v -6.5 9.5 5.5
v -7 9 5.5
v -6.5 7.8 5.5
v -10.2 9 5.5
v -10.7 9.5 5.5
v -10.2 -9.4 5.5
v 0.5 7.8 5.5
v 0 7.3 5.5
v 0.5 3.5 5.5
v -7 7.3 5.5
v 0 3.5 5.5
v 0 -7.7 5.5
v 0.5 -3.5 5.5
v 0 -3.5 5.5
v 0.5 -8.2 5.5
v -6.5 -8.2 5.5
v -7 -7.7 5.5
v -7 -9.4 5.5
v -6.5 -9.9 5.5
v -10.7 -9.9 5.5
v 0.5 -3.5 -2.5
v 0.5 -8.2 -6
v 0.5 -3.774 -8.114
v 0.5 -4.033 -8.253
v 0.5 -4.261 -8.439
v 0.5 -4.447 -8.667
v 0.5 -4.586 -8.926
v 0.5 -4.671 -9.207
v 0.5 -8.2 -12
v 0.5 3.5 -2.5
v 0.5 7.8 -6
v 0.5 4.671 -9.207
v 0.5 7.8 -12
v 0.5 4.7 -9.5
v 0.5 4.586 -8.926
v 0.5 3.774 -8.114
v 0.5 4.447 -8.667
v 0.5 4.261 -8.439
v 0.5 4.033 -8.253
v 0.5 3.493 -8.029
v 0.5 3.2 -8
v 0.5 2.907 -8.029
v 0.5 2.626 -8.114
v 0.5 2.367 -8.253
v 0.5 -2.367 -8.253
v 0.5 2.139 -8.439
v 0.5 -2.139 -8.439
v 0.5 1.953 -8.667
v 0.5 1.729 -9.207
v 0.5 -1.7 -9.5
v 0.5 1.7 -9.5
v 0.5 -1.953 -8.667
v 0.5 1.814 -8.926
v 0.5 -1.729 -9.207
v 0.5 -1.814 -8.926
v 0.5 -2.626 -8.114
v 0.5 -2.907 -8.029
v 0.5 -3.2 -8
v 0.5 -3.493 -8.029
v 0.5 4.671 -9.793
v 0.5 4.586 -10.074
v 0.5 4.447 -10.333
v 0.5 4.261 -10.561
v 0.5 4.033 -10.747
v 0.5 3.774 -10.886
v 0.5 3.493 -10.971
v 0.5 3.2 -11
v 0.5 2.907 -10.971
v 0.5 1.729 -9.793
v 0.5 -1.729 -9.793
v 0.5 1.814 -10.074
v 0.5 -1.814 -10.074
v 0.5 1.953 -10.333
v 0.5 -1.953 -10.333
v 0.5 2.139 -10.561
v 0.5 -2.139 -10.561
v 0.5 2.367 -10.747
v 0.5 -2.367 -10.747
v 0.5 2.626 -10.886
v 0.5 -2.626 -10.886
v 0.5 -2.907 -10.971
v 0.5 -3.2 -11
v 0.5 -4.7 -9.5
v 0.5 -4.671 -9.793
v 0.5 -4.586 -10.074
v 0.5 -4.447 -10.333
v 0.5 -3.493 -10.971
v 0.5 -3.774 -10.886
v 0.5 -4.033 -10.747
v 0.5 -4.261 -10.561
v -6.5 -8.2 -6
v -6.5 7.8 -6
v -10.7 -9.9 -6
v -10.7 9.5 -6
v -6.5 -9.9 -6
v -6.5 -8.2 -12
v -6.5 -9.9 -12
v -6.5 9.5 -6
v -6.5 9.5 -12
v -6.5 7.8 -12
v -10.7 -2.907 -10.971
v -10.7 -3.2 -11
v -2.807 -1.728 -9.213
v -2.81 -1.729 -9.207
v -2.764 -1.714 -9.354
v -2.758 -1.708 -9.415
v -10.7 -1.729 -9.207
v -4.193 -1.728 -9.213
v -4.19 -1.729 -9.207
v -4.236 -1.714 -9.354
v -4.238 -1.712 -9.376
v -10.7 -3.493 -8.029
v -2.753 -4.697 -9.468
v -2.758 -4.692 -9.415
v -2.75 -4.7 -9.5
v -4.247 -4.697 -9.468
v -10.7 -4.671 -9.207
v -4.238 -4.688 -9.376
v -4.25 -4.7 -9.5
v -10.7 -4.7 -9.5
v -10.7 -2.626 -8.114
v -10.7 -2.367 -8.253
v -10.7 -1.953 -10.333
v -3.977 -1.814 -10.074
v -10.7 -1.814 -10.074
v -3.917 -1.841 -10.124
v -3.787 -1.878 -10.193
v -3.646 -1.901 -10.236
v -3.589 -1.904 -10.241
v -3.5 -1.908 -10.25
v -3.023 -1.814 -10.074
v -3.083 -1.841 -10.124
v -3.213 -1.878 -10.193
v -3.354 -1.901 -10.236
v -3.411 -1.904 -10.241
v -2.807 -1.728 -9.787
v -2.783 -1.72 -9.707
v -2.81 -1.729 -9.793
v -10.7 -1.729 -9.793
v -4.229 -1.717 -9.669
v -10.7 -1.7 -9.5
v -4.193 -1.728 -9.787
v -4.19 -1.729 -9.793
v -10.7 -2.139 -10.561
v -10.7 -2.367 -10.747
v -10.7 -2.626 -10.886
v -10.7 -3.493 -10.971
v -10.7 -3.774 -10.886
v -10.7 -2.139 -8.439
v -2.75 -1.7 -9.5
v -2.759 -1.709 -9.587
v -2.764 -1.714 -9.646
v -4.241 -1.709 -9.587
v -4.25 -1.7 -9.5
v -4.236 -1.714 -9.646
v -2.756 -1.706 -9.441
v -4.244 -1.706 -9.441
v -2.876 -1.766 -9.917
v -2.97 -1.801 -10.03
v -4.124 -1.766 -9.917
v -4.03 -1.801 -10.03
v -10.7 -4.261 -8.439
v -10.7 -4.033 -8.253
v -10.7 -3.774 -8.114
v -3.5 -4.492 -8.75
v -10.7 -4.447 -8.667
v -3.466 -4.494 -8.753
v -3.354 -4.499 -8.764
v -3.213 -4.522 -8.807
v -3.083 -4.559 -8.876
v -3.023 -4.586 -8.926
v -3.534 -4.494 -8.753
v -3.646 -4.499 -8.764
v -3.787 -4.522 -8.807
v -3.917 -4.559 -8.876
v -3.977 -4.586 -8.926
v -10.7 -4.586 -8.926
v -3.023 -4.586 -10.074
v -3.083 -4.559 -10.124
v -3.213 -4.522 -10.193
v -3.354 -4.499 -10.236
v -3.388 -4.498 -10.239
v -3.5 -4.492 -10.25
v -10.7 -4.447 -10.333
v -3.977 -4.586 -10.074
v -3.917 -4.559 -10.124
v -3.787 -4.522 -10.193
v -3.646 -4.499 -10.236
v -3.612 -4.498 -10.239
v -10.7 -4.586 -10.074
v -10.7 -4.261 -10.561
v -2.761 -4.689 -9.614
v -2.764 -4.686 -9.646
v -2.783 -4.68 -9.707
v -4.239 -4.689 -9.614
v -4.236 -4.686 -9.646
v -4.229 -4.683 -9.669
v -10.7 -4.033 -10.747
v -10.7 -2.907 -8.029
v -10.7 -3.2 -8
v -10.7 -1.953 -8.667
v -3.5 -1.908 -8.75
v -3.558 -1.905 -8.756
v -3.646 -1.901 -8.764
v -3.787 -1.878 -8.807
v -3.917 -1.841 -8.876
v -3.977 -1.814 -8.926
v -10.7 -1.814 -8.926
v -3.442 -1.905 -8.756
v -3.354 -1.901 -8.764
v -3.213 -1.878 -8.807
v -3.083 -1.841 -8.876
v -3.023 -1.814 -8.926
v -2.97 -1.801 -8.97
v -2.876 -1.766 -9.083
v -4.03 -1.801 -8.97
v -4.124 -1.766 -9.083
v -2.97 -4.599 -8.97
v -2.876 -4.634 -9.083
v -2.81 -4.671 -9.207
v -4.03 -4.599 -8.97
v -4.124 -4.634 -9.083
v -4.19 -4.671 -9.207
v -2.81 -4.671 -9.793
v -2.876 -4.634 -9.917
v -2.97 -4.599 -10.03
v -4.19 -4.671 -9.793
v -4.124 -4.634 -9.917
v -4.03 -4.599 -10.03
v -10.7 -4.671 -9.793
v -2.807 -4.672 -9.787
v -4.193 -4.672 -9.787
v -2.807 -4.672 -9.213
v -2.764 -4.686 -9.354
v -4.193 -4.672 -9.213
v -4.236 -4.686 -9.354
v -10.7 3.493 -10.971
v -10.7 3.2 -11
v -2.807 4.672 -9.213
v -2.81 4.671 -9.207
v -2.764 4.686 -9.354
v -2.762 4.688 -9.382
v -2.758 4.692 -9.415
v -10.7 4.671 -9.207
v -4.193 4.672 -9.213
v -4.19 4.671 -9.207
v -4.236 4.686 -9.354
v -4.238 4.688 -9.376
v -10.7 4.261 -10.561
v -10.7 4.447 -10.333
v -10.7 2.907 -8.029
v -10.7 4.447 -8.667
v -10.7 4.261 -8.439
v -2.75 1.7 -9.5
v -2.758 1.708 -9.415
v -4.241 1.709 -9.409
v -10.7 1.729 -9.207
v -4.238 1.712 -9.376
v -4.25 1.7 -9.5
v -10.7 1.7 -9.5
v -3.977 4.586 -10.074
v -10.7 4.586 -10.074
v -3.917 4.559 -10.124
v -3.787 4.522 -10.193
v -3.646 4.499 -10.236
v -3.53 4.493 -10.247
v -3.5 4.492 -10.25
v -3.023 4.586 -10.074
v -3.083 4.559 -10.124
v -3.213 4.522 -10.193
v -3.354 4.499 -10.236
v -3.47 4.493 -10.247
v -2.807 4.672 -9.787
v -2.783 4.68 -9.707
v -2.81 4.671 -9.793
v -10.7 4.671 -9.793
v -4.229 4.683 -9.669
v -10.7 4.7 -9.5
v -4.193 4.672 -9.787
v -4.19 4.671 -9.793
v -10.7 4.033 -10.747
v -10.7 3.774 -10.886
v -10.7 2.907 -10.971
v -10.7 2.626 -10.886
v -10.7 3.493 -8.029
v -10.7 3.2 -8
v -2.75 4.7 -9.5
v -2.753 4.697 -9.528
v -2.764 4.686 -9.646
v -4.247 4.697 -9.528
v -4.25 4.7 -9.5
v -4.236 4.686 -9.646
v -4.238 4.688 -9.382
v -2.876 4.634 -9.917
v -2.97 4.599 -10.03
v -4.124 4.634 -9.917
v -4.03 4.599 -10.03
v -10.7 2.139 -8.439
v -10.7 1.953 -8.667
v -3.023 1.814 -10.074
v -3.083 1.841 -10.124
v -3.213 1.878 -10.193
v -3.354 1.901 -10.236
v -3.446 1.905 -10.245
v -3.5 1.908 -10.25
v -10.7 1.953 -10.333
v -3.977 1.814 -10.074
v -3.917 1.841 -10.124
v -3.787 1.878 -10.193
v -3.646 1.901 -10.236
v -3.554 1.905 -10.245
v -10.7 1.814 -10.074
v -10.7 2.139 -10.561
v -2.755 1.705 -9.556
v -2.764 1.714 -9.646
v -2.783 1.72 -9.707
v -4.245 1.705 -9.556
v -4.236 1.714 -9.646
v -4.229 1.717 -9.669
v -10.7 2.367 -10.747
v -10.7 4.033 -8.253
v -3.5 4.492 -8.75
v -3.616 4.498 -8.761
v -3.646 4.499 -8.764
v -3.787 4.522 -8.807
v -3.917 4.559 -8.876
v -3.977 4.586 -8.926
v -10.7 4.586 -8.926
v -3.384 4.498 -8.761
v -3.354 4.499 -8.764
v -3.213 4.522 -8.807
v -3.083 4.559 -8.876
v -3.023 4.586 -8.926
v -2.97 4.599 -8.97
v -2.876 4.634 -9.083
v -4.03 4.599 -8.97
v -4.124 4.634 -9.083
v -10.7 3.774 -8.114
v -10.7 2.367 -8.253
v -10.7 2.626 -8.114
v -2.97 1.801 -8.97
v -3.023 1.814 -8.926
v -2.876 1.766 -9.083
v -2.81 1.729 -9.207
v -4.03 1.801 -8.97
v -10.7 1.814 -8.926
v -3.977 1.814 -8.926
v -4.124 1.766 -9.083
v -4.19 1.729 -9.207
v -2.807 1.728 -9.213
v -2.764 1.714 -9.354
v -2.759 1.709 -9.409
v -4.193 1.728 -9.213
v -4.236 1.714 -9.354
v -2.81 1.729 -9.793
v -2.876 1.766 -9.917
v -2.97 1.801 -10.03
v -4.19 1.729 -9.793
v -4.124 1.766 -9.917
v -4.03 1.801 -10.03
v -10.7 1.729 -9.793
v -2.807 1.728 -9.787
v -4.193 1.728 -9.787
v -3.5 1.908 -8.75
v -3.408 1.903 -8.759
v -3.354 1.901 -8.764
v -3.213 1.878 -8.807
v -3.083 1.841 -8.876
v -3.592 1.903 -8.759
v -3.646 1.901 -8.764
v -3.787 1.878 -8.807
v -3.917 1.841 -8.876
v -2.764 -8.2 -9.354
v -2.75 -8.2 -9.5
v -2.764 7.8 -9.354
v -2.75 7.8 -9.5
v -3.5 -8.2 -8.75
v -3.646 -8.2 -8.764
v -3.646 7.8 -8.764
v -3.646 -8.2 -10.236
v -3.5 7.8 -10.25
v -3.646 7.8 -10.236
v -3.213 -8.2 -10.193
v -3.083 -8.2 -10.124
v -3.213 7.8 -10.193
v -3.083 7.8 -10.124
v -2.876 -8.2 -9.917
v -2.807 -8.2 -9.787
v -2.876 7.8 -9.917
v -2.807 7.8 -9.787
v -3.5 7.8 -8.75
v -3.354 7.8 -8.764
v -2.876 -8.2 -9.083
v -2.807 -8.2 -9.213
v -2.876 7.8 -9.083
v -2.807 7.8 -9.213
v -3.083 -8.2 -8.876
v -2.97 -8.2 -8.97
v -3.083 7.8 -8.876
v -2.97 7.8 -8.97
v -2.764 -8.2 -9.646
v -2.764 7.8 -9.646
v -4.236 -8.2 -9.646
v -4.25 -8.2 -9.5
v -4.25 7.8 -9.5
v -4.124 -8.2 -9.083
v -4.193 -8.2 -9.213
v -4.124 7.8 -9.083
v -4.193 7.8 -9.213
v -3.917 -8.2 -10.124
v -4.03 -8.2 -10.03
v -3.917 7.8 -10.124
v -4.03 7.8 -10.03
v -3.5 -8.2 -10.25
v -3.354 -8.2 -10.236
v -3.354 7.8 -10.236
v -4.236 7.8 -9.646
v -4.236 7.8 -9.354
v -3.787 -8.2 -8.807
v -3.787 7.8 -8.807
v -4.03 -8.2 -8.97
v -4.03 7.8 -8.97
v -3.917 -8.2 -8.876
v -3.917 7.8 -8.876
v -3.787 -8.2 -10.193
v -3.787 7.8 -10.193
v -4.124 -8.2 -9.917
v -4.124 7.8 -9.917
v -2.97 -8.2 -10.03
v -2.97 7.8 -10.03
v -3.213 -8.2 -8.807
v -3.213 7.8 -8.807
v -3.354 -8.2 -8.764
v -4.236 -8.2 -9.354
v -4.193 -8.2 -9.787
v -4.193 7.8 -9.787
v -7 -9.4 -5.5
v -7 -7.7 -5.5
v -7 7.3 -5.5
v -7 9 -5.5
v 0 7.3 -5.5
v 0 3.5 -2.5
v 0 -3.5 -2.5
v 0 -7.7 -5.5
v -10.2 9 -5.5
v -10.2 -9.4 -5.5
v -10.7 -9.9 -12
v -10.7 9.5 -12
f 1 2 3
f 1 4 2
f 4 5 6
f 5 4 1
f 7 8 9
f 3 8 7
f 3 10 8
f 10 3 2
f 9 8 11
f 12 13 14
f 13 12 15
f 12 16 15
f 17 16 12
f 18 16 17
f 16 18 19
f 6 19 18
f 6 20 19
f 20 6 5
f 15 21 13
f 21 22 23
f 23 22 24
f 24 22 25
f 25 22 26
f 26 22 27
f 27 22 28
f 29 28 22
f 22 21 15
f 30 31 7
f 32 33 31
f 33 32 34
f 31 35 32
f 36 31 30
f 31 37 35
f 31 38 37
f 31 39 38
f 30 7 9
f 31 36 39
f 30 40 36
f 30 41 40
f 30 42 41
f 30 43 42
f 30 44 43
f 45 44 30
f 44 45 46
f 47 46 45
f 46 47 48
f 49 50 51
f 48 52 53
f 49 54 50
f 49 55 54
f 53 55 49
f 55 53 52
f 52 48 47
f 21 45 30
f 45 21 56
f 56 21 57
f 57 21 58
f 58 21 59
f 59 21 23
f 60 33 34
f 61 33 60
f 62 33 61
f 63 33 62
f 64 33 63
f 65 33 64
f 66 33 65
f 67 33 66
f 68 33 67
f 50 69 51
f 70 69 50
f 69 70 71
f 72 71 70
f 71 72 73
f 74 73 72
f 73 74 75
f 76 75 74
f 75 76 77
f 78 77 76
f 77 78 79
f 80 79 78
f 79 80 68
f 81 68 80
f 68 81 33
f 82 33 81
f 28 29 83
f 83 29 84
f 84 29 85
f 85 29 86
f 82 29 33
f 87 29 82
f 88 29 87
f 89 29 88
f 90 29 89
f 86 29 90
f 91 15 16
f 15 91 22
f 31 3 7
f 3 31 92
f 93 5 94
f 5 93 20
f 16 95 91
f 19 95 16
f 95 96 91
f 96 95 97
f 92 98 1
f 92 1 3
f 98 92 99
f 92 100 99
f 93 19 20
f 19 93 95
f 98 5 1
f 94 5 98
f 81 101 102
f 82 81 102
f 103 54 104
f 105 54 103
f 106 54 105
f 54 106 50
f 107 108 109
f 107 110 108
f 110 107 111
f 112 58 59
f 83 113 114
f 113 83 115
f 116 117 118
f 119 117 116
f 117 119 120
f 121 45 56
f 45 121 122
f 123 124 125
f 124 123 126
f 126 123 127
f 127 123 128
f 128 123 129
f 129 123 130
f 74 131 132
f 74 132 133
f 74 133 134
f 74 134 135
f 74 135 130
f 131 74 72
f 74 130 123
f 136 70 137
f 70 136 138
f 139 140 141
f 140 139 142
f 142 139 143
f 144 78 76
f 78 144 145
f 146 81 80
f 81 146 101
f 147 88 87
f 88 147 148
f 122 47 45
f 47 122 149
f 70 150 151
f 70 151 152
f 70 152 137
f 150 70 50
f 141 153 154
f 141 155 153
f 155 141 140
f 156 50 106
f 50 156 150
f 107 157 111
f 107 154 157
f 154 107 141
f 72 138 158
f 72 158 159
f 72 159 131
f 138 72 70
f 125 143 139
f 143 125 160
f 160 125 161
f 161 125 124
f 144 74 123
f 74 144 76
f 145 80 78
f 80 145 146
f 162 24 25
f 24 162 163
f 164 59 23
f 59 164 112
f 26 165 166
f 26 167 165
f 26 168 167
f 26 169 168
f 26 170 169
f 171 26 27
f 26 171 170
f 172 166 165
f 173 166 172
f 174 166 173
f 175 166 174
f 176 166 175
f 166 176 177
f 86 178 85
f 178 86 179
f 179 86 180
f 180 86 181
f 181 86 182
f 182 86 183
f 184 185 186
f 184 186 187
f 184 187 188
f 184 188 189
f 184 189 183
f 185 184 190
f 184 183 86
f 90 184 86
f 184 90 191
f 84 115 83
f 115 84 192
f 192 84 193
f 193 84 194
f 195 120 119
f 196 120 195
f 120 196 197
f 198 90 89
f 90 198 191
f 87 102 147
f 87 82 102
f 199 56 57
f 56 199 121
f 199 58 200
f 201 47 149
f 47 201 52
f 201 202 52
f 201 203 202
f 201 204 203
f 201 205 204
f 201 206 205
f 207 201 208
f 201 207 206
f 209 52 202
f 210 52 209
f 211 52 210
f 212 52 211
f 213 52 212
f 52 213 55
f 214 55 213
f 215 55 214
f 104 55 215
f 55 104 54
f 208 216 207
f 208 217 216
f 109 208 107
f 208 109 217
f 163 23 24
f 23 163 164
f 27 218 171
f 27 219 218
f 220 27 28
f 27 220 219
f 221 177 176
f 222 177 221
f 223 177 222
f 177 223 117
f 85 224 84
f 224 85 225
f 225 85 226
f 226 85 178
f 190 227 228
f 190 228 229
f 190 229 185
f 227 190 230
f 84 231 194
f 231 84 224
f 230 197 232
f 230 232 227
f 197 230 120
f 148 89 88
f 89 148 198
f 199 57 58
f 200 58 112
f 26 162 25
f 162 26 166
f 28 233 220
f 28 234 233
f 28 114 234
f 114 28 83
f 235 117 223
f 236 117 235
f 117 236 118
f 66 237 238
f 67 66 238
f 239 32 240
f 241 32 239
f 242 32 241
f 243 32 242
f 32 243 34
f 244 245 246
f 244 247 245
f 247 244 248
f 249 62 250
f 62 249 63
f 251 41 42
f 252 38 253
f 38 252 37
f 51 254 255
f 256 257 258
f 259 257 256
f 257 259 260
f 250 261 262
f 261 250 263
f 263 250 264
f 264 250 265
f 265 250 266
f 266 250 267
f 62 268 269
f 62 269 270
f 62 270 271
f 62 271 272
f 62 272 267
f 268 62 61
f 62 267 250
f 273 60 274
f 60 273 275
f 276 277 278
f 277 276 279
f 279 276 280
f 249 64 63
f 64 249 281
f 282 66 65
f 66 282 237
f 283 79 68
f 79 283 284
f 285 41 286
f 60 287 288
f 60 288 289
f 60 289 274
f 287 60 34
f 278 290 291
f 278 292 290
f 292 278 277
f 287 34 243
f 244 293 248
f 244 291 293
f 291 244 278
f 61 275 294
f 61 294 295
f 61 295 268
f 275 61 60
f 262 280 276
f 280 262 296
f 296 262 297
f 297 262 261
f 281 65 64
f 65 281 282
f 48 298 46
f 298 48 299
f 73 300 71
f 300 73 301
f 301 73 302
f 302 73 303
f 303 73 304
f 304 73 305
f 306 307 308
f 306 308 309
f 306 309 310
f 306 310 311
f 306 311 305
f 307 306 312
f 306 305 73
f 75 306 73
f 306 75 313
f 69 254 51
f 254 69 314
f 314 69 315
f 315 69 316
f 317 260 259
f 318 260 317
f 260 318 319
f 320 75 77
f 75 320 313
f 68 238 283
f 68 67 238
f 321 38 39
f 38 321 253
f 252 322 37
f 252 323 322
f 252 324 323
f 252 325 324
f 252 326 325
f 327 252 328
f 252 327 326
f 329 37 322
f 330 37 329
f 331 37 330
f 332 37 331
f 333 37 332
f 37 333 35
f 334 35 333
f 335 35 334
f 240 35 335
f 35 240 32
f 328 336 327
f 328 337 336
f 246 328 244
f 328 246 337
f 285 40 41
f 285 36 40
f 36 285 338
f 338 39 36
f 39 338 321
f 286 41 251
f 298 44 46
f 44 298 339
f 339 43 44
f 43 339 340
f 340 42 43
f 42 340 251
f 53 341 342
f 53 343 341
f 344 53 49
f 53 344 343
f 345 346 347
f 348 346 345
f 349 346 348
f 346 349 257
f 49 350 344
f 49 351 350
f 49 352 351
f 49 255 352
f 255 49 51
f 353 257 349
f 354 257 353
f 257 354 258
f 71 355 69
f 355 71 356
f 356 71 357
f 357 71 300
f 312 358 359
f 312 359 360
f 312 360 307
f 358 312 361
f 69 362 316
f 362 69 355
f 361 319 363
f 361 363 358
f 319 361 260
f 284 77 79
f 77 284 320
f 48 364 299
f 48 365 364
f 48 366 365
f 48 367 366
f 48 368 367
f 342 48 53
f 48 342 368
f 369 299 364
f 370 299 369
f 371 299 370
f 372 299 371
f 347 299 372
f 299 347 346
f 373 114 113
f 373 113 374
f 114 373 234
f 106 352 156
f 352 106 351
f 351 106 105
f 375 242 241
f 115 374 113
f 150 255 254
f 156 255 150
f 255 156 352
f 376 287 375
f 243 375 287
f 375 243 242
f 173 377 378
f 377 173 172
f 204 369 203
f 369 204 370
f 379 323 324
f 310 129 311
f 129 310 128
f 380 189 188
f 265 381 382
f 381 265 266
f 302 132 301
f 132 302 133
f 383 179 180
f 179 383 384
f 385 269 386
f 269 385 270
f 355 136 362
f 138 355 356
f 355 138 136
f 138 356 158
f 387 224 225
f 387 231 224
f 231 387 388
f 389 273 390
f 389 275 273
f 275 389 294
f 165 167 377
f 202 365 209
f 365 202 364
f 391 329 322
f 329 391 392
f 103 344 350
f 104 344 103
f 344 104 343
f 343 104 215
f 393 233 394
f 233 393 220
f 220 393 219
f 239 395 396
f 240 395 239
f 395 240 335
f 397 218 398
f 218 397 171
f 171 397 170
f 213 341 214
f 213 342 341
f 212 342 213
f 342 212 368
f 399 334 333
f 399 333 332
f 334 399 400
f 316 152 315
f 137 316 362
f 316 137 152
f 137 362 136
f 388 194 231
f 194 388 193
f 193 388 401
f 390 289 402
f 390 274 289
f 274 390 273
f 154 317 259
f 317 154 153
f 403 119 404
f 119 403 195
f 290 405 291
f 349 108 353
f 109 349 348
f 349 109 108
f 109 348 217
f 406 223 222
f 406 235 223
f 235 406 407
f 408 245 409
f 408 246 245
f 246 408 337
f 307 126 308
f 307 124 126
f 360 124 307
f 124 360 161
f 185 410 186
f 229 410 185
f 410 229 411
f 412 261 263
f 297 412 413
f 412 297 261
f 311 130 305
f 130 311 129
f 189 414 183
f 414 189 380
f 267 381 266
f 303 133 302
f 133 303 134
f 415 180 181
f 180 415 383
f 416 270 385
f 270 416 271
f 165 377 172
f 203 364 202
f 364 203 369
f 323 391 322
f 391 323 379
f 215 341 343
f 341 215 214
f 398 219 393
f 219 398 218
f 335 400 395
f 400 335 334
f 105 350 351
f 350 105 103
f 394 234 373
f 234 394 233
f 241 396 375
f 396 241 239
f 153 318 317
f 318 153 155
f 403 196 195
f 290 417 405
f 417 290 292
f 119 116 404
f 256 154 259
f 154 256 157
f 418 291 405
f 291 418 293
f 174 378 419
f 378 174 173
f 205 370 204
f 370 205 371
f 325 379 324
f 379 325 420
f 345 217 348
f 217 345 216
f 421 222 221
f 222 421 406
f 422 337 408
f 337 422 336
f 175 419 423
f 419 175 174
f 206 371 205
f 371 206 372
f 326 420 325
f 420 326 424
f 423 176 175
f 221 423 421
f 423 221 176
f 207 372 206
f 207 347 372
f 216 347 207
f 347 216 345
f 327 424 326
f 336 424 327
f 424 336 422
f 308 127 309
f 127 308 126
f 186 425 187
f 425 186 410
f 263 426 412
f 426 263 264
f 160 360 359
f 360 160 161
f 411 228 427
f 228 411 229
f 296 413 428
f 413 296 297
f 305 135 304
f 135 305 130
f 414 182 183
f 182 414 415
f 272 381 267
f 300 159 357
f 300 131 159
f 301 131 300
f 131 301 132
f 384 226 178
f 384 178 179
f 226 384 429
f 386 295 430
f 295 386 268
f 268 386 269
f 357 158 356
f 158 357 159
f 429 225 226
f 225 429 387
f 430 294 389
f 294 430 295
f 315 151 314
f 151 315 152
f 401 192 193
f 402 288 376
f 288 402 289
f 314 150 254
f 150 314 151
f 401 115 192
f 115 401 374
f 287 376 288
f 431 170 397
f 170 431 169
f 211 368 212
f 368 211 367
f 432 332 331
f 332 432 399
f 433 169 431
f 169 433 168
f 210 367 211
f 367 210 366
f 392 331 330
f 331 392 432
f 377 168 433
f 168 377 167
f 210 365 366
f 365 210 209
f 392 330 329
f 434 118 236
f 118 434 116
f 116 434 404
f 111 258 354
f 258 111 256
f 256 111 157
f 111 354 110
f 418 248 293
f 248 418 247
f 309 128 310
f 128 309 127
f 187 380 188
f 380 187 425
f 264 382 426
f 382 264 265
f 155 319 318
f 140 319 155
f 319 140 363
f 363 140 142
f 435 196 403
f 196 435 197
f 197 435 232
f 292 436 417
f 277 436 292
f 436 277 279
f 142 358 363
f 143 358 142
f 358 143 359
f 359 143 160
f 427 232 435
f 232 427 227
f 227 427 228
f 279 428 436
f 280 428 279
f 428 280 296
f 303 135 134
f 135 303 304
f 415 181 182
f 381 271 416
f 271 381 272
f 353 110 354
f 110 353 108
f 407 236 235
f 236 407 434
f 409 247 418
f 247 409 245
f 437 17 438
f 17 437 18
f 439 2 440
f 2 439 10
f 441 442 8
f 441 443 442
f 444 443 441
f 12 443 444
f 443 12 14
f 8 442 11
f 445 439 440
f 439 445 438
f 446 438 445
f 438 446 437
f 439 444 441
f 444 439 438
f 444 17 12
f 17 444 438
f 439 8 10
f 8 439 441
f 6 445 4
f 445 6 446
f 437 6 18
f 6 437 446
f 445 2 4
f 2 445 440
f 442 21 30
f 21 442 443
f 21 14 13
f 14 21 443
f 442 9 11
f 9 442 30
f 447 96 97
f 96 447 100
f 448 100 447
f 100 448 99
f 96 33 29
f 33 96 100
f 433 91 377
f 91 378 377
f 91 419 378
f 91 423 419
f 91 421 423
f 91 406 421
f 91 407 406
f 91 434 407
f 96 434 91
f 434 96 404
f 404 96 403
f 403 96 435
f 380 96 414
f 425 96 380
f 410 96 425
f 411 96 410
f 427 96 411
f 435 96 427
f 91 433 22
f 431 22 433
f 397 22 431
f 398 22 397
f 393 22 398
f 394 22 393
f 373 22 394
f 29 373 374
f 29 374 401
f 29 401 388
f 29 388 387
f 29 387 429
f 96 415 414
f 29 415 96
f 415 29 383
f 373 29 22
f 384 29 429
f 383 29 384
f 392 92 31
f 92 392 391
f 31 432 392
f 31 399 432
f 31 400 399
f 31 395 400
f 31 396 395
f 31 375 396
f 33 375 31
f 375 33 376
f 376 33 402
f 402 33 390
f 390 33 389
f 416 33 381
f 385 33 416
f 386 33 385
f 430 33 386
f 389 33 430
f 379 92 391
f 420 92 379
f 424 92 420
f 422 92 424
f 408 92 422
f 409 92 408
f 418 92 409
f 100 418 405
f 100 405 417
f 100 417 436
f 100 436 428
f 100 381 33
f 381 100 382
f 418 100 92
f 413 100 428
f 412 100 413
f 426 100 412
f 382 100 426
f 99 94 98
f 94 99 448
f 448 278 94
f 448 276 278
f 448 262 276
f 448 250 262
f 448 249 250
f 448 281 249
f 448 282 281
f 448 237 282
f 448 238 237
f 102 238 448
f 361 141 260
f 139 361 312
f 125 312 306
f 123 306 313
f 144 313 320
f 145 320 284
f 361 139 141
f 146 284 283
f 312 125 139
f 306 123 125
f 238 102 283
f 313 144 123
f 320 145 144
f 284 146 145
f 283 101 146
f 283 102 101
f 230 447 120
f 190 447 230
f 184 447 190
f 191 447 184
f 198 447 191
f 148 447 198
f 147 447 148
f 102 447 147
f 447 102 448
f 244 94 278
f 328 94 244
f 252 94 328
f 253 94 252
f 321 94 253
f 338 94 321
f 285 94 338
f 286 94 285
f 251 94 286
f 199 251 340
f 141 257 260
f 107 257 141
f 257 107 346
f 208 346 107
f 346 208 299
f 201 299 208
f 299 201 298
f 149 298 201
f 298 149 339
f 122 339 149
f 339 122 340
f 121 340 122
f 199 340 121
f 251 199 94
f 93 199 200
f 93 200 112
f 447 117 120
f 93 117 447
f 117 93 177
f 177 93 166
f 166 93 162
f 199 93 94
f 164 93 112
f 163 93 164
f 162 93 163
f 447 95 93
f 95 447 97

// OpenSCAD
// file: Helper.scad
// collection of helper functions and modules

$fn=32;


/////////////////////// Functions ///////////////////////////
function defined(variable) = str(variable) != "undef"; 



/////////////////////// Objects /////////////////////////////

// creates a hole on with given depth and diameter 
// with its center at x,y,z 
// of the given plane
module mkhole(diameter,depth,plane="xy",x=0,y=0,z=0)
{
        if(plane=="xy")
            translate([x,y,z])
                translate([0,0,depth/2])
                    cylinder(d=diameter,h=depth, center=true);
      
        if(plane=="xz")
            translate([x,y,z])
                translate([0,depth/2,0])
                    rotate([90,0,0])
                        cylinder(d=diameter,h=depth, center=true);
        
        if(plane=="yz")
            translate([x,y,z])
                translate([depth/2,0,0])
                    rotate([0,90,0])
                        cylinder(d=diameter,h=depth, center=true);
}


// create a foot for objects starting at z with given height
module mkfoot(height,z){
    translate([0,0,z])
        linear_extrude(height=height)
            projection() children();
}


// create a length indicator with text - l=length, t=text
module Spacer(l,t){
    // move with beginning to zero on x axis
    translate([l/2,0,0]){
        linear_extrude(height=0.1){
            // create spacer line
            square([l,0.1],center=true);

            // create end caps
            translate([-l/2,0,0])
                square([0.1,1],center=true);
            translate([l/2,0,0])
                square([0.1,1],center=true);

            // add text
            text(text = str(t,": ",l),
                 size=1,
                 halign="center",
                 valign="bottom");
        }
    }
}
// main file
// Display holding module
//
// Object is centered and zeroed with screen on the x axis

use <Helper.scad>;

$fn=32;


// Render object with example values when run standalone
Display(
    screen_width        = 7,
    screen_height       = 5,
    screen_offset_x     = 0.2,
    screen_offset_y     = 0,
    display_length      = 7,
    display_width       = 15,
    display_height      = 11,
    backplate_length    = 3.2,
    backplate_width     = 18.4,
    wall                = 0.5,
    foot                = true,
    ground_distance     = 12,
    holes               = true,
    hole_distance       = 6,
    hole_diameter       = 3,
    screw_diameter      = 1.5,
    render_dimensions   = false
);


module Display(screen_width,
               screen_height,
               screen_offset_x,
               screen_offset_y,
               display_length,
               display_width,
               display_height,
               backplate_length,
               backplate_width,
               wall,
               foot,
               ground_distance,
               holes,
               hole_distance,
               hole_diameter,
               screw_diameter,
               render_dimensions){


    ///////////////////// calculate variables //////////////////////
    display_case_length     = display_length    + wall;
    display_case_width      = display_width     + 2 * wall;
    display_case_height     = display_height    + wall;
    backplate_case_length   = backplate_length  + 2 * wall;
    backplate_case_width    = backplate_width   + 2 * wall;
    backplate_case_height   = display_case_height;
    case_length = display_length  + backplate_length + 2 * wall;
    case_width  = display_width   + backplate_width  + 2 * wall;
    case_height = display_case_height;
    hole_offset_x   = - case_length;
    hole_offset_y   = - hole_distance/2 - screen_offset_x;
    hole_offset_z   = - ground_distance + hole_diameter/2 + 2 * wall;



    //////////////////// parts to be rendered //////////////////////
    
    // render object
    color("lightgrey") object();
                      
    // render dimensions if enabled
    if(render_dimensions) color("red") dimensions();
    
    // render foot with optional holes if enabled
    if(foot) color("grey") foot();
    
    
    
    //////////////////////////// modules ///////////////////////////

    // object itself
    module object(){
        difference() {
            
            // basic shape
            union(){
                // offset to always center on the screen
                translate([0,-screen_offset_x,-screen_offset_y]){
                    // display container
                    translate([-display_case_length/2+wall,0,-wall/2])
                        cube([display_case_length,
                              display_case_width,
                              display_case_height], center=true);
                    // backplate container
                    translate([-(backplate_length/2+display_length),0,-wall/2])
                        cube([backplate_case_length,
                              backplate_case_width,
                              backplate_case_height], center=true);
                }
            }
            
            // cutouts
            union(){
                // screen cutout
                translate([wall/2,0,0])
                    cube([wall,screen_width,screen_height], center=true);
                
                // opening above screen
                cutout_height=(display_height-screen_height)/2
                              -screen_offset_y;
                
                translate([wall/2,
                           0,
                           (display_height-cutout_height)/2-screen_offset_y])
                    cube([wall,screen_width,cutout_height], center=true);
            
                // adjust screen offsets
                translate([0,-screen_offset_x,-screen_offset_y]){
                    
                    // display cutout
                    translate([-display_length/2,0,0])
                        cube([display_length,
                              display_width,
                              display_height],center=true);
                    
                    // backplate cutout
                    translate([-(backplate_length/2+display_length),0,0])
                        cube([backplate_length,
                              backplate_width,
                              display_height], center=true);
                    
                    // cable cutout
                    //translate([-backplate_length-display_length-wall/2,
                    //           0,
                    //           (display_height-wall)/2])
                    //    cube([wall,backplate_width,wall],center=true);
                }
            }
        }
    }

    module dimensions(){
        dist = 2; // space between spacers
        
        color("black") {
            translate([0,0,display_height/2+dist]){
                translate([0,backplate_width/2,0]){
                    translate([-display_length,,0])
                        Spacer(l=display_length,t="display_length");
                    translate([-display_length-backplate_length,dist,0])
                        Spacer(l=backplate_length,t="backplate_length");
                }
                
                translate([0,-screen_width/2,0])
                    rotate([0,0,90])
                        Spacer(l=screen_width,t="screen width");
                
                translate([-dist,-display_width/2-screen_offset_x,0])
                    rotate([0,0,90])
                        Spacer(l=display_width,t="display width");
                
                translate([-3*dist,-backplate_width/2-screen_offset_x,0])
                    rotate([0,0,90])
                        Spacer(l=backplate_width,t="backplate width");                
            }
            
            translate([0,backplate_width/2+dist,-screen_offset_y])
                rotate([0,90,0])
                    translate([-display_height/2,0,0])
                        Spacer(l=display_height,t="display height");

            translate([0,backplate_width/2+2*dist,0])
                rotate([0,90,0])
                    translate([-screen_height/2,0,0])
                        Spacer(l=screen_height,t="screen height");            
            
        }
    }


    module foot()
    {       
        if(holes) {
            difference() 
            {
                item(); 
                holes();
            }
        }
        else
        {
            item();
        }
        
        
        module item(){    
            mkfoot(height=ground_distance
                         -display_height/2
                         -wall
                         -screen_offset_y,
                   z=-ground_distance){
                object();
            }
        }
    }


    module holes()
    {
        // make two holes for bars to mount object on
        for(y=[-hole_offset_y,hole_offset_y])
        {
            mkhole(diameter=hole_diameter,
                   depth=case_length,
                   plane="yz",
                   x=wall-case_length,
                   y=y,
                   z=hole_offset_z);
        }
        
        // make a small hole cutting the mount holes to fixate with screws
        mkhole(diameter=screw_diameter,
                depth=display_case_width,
                plane="xz",
                x=-display_length/2,
                y=-display_case_width/2-screen_offset_x,
                z=hole_offset_z);
    }
}
